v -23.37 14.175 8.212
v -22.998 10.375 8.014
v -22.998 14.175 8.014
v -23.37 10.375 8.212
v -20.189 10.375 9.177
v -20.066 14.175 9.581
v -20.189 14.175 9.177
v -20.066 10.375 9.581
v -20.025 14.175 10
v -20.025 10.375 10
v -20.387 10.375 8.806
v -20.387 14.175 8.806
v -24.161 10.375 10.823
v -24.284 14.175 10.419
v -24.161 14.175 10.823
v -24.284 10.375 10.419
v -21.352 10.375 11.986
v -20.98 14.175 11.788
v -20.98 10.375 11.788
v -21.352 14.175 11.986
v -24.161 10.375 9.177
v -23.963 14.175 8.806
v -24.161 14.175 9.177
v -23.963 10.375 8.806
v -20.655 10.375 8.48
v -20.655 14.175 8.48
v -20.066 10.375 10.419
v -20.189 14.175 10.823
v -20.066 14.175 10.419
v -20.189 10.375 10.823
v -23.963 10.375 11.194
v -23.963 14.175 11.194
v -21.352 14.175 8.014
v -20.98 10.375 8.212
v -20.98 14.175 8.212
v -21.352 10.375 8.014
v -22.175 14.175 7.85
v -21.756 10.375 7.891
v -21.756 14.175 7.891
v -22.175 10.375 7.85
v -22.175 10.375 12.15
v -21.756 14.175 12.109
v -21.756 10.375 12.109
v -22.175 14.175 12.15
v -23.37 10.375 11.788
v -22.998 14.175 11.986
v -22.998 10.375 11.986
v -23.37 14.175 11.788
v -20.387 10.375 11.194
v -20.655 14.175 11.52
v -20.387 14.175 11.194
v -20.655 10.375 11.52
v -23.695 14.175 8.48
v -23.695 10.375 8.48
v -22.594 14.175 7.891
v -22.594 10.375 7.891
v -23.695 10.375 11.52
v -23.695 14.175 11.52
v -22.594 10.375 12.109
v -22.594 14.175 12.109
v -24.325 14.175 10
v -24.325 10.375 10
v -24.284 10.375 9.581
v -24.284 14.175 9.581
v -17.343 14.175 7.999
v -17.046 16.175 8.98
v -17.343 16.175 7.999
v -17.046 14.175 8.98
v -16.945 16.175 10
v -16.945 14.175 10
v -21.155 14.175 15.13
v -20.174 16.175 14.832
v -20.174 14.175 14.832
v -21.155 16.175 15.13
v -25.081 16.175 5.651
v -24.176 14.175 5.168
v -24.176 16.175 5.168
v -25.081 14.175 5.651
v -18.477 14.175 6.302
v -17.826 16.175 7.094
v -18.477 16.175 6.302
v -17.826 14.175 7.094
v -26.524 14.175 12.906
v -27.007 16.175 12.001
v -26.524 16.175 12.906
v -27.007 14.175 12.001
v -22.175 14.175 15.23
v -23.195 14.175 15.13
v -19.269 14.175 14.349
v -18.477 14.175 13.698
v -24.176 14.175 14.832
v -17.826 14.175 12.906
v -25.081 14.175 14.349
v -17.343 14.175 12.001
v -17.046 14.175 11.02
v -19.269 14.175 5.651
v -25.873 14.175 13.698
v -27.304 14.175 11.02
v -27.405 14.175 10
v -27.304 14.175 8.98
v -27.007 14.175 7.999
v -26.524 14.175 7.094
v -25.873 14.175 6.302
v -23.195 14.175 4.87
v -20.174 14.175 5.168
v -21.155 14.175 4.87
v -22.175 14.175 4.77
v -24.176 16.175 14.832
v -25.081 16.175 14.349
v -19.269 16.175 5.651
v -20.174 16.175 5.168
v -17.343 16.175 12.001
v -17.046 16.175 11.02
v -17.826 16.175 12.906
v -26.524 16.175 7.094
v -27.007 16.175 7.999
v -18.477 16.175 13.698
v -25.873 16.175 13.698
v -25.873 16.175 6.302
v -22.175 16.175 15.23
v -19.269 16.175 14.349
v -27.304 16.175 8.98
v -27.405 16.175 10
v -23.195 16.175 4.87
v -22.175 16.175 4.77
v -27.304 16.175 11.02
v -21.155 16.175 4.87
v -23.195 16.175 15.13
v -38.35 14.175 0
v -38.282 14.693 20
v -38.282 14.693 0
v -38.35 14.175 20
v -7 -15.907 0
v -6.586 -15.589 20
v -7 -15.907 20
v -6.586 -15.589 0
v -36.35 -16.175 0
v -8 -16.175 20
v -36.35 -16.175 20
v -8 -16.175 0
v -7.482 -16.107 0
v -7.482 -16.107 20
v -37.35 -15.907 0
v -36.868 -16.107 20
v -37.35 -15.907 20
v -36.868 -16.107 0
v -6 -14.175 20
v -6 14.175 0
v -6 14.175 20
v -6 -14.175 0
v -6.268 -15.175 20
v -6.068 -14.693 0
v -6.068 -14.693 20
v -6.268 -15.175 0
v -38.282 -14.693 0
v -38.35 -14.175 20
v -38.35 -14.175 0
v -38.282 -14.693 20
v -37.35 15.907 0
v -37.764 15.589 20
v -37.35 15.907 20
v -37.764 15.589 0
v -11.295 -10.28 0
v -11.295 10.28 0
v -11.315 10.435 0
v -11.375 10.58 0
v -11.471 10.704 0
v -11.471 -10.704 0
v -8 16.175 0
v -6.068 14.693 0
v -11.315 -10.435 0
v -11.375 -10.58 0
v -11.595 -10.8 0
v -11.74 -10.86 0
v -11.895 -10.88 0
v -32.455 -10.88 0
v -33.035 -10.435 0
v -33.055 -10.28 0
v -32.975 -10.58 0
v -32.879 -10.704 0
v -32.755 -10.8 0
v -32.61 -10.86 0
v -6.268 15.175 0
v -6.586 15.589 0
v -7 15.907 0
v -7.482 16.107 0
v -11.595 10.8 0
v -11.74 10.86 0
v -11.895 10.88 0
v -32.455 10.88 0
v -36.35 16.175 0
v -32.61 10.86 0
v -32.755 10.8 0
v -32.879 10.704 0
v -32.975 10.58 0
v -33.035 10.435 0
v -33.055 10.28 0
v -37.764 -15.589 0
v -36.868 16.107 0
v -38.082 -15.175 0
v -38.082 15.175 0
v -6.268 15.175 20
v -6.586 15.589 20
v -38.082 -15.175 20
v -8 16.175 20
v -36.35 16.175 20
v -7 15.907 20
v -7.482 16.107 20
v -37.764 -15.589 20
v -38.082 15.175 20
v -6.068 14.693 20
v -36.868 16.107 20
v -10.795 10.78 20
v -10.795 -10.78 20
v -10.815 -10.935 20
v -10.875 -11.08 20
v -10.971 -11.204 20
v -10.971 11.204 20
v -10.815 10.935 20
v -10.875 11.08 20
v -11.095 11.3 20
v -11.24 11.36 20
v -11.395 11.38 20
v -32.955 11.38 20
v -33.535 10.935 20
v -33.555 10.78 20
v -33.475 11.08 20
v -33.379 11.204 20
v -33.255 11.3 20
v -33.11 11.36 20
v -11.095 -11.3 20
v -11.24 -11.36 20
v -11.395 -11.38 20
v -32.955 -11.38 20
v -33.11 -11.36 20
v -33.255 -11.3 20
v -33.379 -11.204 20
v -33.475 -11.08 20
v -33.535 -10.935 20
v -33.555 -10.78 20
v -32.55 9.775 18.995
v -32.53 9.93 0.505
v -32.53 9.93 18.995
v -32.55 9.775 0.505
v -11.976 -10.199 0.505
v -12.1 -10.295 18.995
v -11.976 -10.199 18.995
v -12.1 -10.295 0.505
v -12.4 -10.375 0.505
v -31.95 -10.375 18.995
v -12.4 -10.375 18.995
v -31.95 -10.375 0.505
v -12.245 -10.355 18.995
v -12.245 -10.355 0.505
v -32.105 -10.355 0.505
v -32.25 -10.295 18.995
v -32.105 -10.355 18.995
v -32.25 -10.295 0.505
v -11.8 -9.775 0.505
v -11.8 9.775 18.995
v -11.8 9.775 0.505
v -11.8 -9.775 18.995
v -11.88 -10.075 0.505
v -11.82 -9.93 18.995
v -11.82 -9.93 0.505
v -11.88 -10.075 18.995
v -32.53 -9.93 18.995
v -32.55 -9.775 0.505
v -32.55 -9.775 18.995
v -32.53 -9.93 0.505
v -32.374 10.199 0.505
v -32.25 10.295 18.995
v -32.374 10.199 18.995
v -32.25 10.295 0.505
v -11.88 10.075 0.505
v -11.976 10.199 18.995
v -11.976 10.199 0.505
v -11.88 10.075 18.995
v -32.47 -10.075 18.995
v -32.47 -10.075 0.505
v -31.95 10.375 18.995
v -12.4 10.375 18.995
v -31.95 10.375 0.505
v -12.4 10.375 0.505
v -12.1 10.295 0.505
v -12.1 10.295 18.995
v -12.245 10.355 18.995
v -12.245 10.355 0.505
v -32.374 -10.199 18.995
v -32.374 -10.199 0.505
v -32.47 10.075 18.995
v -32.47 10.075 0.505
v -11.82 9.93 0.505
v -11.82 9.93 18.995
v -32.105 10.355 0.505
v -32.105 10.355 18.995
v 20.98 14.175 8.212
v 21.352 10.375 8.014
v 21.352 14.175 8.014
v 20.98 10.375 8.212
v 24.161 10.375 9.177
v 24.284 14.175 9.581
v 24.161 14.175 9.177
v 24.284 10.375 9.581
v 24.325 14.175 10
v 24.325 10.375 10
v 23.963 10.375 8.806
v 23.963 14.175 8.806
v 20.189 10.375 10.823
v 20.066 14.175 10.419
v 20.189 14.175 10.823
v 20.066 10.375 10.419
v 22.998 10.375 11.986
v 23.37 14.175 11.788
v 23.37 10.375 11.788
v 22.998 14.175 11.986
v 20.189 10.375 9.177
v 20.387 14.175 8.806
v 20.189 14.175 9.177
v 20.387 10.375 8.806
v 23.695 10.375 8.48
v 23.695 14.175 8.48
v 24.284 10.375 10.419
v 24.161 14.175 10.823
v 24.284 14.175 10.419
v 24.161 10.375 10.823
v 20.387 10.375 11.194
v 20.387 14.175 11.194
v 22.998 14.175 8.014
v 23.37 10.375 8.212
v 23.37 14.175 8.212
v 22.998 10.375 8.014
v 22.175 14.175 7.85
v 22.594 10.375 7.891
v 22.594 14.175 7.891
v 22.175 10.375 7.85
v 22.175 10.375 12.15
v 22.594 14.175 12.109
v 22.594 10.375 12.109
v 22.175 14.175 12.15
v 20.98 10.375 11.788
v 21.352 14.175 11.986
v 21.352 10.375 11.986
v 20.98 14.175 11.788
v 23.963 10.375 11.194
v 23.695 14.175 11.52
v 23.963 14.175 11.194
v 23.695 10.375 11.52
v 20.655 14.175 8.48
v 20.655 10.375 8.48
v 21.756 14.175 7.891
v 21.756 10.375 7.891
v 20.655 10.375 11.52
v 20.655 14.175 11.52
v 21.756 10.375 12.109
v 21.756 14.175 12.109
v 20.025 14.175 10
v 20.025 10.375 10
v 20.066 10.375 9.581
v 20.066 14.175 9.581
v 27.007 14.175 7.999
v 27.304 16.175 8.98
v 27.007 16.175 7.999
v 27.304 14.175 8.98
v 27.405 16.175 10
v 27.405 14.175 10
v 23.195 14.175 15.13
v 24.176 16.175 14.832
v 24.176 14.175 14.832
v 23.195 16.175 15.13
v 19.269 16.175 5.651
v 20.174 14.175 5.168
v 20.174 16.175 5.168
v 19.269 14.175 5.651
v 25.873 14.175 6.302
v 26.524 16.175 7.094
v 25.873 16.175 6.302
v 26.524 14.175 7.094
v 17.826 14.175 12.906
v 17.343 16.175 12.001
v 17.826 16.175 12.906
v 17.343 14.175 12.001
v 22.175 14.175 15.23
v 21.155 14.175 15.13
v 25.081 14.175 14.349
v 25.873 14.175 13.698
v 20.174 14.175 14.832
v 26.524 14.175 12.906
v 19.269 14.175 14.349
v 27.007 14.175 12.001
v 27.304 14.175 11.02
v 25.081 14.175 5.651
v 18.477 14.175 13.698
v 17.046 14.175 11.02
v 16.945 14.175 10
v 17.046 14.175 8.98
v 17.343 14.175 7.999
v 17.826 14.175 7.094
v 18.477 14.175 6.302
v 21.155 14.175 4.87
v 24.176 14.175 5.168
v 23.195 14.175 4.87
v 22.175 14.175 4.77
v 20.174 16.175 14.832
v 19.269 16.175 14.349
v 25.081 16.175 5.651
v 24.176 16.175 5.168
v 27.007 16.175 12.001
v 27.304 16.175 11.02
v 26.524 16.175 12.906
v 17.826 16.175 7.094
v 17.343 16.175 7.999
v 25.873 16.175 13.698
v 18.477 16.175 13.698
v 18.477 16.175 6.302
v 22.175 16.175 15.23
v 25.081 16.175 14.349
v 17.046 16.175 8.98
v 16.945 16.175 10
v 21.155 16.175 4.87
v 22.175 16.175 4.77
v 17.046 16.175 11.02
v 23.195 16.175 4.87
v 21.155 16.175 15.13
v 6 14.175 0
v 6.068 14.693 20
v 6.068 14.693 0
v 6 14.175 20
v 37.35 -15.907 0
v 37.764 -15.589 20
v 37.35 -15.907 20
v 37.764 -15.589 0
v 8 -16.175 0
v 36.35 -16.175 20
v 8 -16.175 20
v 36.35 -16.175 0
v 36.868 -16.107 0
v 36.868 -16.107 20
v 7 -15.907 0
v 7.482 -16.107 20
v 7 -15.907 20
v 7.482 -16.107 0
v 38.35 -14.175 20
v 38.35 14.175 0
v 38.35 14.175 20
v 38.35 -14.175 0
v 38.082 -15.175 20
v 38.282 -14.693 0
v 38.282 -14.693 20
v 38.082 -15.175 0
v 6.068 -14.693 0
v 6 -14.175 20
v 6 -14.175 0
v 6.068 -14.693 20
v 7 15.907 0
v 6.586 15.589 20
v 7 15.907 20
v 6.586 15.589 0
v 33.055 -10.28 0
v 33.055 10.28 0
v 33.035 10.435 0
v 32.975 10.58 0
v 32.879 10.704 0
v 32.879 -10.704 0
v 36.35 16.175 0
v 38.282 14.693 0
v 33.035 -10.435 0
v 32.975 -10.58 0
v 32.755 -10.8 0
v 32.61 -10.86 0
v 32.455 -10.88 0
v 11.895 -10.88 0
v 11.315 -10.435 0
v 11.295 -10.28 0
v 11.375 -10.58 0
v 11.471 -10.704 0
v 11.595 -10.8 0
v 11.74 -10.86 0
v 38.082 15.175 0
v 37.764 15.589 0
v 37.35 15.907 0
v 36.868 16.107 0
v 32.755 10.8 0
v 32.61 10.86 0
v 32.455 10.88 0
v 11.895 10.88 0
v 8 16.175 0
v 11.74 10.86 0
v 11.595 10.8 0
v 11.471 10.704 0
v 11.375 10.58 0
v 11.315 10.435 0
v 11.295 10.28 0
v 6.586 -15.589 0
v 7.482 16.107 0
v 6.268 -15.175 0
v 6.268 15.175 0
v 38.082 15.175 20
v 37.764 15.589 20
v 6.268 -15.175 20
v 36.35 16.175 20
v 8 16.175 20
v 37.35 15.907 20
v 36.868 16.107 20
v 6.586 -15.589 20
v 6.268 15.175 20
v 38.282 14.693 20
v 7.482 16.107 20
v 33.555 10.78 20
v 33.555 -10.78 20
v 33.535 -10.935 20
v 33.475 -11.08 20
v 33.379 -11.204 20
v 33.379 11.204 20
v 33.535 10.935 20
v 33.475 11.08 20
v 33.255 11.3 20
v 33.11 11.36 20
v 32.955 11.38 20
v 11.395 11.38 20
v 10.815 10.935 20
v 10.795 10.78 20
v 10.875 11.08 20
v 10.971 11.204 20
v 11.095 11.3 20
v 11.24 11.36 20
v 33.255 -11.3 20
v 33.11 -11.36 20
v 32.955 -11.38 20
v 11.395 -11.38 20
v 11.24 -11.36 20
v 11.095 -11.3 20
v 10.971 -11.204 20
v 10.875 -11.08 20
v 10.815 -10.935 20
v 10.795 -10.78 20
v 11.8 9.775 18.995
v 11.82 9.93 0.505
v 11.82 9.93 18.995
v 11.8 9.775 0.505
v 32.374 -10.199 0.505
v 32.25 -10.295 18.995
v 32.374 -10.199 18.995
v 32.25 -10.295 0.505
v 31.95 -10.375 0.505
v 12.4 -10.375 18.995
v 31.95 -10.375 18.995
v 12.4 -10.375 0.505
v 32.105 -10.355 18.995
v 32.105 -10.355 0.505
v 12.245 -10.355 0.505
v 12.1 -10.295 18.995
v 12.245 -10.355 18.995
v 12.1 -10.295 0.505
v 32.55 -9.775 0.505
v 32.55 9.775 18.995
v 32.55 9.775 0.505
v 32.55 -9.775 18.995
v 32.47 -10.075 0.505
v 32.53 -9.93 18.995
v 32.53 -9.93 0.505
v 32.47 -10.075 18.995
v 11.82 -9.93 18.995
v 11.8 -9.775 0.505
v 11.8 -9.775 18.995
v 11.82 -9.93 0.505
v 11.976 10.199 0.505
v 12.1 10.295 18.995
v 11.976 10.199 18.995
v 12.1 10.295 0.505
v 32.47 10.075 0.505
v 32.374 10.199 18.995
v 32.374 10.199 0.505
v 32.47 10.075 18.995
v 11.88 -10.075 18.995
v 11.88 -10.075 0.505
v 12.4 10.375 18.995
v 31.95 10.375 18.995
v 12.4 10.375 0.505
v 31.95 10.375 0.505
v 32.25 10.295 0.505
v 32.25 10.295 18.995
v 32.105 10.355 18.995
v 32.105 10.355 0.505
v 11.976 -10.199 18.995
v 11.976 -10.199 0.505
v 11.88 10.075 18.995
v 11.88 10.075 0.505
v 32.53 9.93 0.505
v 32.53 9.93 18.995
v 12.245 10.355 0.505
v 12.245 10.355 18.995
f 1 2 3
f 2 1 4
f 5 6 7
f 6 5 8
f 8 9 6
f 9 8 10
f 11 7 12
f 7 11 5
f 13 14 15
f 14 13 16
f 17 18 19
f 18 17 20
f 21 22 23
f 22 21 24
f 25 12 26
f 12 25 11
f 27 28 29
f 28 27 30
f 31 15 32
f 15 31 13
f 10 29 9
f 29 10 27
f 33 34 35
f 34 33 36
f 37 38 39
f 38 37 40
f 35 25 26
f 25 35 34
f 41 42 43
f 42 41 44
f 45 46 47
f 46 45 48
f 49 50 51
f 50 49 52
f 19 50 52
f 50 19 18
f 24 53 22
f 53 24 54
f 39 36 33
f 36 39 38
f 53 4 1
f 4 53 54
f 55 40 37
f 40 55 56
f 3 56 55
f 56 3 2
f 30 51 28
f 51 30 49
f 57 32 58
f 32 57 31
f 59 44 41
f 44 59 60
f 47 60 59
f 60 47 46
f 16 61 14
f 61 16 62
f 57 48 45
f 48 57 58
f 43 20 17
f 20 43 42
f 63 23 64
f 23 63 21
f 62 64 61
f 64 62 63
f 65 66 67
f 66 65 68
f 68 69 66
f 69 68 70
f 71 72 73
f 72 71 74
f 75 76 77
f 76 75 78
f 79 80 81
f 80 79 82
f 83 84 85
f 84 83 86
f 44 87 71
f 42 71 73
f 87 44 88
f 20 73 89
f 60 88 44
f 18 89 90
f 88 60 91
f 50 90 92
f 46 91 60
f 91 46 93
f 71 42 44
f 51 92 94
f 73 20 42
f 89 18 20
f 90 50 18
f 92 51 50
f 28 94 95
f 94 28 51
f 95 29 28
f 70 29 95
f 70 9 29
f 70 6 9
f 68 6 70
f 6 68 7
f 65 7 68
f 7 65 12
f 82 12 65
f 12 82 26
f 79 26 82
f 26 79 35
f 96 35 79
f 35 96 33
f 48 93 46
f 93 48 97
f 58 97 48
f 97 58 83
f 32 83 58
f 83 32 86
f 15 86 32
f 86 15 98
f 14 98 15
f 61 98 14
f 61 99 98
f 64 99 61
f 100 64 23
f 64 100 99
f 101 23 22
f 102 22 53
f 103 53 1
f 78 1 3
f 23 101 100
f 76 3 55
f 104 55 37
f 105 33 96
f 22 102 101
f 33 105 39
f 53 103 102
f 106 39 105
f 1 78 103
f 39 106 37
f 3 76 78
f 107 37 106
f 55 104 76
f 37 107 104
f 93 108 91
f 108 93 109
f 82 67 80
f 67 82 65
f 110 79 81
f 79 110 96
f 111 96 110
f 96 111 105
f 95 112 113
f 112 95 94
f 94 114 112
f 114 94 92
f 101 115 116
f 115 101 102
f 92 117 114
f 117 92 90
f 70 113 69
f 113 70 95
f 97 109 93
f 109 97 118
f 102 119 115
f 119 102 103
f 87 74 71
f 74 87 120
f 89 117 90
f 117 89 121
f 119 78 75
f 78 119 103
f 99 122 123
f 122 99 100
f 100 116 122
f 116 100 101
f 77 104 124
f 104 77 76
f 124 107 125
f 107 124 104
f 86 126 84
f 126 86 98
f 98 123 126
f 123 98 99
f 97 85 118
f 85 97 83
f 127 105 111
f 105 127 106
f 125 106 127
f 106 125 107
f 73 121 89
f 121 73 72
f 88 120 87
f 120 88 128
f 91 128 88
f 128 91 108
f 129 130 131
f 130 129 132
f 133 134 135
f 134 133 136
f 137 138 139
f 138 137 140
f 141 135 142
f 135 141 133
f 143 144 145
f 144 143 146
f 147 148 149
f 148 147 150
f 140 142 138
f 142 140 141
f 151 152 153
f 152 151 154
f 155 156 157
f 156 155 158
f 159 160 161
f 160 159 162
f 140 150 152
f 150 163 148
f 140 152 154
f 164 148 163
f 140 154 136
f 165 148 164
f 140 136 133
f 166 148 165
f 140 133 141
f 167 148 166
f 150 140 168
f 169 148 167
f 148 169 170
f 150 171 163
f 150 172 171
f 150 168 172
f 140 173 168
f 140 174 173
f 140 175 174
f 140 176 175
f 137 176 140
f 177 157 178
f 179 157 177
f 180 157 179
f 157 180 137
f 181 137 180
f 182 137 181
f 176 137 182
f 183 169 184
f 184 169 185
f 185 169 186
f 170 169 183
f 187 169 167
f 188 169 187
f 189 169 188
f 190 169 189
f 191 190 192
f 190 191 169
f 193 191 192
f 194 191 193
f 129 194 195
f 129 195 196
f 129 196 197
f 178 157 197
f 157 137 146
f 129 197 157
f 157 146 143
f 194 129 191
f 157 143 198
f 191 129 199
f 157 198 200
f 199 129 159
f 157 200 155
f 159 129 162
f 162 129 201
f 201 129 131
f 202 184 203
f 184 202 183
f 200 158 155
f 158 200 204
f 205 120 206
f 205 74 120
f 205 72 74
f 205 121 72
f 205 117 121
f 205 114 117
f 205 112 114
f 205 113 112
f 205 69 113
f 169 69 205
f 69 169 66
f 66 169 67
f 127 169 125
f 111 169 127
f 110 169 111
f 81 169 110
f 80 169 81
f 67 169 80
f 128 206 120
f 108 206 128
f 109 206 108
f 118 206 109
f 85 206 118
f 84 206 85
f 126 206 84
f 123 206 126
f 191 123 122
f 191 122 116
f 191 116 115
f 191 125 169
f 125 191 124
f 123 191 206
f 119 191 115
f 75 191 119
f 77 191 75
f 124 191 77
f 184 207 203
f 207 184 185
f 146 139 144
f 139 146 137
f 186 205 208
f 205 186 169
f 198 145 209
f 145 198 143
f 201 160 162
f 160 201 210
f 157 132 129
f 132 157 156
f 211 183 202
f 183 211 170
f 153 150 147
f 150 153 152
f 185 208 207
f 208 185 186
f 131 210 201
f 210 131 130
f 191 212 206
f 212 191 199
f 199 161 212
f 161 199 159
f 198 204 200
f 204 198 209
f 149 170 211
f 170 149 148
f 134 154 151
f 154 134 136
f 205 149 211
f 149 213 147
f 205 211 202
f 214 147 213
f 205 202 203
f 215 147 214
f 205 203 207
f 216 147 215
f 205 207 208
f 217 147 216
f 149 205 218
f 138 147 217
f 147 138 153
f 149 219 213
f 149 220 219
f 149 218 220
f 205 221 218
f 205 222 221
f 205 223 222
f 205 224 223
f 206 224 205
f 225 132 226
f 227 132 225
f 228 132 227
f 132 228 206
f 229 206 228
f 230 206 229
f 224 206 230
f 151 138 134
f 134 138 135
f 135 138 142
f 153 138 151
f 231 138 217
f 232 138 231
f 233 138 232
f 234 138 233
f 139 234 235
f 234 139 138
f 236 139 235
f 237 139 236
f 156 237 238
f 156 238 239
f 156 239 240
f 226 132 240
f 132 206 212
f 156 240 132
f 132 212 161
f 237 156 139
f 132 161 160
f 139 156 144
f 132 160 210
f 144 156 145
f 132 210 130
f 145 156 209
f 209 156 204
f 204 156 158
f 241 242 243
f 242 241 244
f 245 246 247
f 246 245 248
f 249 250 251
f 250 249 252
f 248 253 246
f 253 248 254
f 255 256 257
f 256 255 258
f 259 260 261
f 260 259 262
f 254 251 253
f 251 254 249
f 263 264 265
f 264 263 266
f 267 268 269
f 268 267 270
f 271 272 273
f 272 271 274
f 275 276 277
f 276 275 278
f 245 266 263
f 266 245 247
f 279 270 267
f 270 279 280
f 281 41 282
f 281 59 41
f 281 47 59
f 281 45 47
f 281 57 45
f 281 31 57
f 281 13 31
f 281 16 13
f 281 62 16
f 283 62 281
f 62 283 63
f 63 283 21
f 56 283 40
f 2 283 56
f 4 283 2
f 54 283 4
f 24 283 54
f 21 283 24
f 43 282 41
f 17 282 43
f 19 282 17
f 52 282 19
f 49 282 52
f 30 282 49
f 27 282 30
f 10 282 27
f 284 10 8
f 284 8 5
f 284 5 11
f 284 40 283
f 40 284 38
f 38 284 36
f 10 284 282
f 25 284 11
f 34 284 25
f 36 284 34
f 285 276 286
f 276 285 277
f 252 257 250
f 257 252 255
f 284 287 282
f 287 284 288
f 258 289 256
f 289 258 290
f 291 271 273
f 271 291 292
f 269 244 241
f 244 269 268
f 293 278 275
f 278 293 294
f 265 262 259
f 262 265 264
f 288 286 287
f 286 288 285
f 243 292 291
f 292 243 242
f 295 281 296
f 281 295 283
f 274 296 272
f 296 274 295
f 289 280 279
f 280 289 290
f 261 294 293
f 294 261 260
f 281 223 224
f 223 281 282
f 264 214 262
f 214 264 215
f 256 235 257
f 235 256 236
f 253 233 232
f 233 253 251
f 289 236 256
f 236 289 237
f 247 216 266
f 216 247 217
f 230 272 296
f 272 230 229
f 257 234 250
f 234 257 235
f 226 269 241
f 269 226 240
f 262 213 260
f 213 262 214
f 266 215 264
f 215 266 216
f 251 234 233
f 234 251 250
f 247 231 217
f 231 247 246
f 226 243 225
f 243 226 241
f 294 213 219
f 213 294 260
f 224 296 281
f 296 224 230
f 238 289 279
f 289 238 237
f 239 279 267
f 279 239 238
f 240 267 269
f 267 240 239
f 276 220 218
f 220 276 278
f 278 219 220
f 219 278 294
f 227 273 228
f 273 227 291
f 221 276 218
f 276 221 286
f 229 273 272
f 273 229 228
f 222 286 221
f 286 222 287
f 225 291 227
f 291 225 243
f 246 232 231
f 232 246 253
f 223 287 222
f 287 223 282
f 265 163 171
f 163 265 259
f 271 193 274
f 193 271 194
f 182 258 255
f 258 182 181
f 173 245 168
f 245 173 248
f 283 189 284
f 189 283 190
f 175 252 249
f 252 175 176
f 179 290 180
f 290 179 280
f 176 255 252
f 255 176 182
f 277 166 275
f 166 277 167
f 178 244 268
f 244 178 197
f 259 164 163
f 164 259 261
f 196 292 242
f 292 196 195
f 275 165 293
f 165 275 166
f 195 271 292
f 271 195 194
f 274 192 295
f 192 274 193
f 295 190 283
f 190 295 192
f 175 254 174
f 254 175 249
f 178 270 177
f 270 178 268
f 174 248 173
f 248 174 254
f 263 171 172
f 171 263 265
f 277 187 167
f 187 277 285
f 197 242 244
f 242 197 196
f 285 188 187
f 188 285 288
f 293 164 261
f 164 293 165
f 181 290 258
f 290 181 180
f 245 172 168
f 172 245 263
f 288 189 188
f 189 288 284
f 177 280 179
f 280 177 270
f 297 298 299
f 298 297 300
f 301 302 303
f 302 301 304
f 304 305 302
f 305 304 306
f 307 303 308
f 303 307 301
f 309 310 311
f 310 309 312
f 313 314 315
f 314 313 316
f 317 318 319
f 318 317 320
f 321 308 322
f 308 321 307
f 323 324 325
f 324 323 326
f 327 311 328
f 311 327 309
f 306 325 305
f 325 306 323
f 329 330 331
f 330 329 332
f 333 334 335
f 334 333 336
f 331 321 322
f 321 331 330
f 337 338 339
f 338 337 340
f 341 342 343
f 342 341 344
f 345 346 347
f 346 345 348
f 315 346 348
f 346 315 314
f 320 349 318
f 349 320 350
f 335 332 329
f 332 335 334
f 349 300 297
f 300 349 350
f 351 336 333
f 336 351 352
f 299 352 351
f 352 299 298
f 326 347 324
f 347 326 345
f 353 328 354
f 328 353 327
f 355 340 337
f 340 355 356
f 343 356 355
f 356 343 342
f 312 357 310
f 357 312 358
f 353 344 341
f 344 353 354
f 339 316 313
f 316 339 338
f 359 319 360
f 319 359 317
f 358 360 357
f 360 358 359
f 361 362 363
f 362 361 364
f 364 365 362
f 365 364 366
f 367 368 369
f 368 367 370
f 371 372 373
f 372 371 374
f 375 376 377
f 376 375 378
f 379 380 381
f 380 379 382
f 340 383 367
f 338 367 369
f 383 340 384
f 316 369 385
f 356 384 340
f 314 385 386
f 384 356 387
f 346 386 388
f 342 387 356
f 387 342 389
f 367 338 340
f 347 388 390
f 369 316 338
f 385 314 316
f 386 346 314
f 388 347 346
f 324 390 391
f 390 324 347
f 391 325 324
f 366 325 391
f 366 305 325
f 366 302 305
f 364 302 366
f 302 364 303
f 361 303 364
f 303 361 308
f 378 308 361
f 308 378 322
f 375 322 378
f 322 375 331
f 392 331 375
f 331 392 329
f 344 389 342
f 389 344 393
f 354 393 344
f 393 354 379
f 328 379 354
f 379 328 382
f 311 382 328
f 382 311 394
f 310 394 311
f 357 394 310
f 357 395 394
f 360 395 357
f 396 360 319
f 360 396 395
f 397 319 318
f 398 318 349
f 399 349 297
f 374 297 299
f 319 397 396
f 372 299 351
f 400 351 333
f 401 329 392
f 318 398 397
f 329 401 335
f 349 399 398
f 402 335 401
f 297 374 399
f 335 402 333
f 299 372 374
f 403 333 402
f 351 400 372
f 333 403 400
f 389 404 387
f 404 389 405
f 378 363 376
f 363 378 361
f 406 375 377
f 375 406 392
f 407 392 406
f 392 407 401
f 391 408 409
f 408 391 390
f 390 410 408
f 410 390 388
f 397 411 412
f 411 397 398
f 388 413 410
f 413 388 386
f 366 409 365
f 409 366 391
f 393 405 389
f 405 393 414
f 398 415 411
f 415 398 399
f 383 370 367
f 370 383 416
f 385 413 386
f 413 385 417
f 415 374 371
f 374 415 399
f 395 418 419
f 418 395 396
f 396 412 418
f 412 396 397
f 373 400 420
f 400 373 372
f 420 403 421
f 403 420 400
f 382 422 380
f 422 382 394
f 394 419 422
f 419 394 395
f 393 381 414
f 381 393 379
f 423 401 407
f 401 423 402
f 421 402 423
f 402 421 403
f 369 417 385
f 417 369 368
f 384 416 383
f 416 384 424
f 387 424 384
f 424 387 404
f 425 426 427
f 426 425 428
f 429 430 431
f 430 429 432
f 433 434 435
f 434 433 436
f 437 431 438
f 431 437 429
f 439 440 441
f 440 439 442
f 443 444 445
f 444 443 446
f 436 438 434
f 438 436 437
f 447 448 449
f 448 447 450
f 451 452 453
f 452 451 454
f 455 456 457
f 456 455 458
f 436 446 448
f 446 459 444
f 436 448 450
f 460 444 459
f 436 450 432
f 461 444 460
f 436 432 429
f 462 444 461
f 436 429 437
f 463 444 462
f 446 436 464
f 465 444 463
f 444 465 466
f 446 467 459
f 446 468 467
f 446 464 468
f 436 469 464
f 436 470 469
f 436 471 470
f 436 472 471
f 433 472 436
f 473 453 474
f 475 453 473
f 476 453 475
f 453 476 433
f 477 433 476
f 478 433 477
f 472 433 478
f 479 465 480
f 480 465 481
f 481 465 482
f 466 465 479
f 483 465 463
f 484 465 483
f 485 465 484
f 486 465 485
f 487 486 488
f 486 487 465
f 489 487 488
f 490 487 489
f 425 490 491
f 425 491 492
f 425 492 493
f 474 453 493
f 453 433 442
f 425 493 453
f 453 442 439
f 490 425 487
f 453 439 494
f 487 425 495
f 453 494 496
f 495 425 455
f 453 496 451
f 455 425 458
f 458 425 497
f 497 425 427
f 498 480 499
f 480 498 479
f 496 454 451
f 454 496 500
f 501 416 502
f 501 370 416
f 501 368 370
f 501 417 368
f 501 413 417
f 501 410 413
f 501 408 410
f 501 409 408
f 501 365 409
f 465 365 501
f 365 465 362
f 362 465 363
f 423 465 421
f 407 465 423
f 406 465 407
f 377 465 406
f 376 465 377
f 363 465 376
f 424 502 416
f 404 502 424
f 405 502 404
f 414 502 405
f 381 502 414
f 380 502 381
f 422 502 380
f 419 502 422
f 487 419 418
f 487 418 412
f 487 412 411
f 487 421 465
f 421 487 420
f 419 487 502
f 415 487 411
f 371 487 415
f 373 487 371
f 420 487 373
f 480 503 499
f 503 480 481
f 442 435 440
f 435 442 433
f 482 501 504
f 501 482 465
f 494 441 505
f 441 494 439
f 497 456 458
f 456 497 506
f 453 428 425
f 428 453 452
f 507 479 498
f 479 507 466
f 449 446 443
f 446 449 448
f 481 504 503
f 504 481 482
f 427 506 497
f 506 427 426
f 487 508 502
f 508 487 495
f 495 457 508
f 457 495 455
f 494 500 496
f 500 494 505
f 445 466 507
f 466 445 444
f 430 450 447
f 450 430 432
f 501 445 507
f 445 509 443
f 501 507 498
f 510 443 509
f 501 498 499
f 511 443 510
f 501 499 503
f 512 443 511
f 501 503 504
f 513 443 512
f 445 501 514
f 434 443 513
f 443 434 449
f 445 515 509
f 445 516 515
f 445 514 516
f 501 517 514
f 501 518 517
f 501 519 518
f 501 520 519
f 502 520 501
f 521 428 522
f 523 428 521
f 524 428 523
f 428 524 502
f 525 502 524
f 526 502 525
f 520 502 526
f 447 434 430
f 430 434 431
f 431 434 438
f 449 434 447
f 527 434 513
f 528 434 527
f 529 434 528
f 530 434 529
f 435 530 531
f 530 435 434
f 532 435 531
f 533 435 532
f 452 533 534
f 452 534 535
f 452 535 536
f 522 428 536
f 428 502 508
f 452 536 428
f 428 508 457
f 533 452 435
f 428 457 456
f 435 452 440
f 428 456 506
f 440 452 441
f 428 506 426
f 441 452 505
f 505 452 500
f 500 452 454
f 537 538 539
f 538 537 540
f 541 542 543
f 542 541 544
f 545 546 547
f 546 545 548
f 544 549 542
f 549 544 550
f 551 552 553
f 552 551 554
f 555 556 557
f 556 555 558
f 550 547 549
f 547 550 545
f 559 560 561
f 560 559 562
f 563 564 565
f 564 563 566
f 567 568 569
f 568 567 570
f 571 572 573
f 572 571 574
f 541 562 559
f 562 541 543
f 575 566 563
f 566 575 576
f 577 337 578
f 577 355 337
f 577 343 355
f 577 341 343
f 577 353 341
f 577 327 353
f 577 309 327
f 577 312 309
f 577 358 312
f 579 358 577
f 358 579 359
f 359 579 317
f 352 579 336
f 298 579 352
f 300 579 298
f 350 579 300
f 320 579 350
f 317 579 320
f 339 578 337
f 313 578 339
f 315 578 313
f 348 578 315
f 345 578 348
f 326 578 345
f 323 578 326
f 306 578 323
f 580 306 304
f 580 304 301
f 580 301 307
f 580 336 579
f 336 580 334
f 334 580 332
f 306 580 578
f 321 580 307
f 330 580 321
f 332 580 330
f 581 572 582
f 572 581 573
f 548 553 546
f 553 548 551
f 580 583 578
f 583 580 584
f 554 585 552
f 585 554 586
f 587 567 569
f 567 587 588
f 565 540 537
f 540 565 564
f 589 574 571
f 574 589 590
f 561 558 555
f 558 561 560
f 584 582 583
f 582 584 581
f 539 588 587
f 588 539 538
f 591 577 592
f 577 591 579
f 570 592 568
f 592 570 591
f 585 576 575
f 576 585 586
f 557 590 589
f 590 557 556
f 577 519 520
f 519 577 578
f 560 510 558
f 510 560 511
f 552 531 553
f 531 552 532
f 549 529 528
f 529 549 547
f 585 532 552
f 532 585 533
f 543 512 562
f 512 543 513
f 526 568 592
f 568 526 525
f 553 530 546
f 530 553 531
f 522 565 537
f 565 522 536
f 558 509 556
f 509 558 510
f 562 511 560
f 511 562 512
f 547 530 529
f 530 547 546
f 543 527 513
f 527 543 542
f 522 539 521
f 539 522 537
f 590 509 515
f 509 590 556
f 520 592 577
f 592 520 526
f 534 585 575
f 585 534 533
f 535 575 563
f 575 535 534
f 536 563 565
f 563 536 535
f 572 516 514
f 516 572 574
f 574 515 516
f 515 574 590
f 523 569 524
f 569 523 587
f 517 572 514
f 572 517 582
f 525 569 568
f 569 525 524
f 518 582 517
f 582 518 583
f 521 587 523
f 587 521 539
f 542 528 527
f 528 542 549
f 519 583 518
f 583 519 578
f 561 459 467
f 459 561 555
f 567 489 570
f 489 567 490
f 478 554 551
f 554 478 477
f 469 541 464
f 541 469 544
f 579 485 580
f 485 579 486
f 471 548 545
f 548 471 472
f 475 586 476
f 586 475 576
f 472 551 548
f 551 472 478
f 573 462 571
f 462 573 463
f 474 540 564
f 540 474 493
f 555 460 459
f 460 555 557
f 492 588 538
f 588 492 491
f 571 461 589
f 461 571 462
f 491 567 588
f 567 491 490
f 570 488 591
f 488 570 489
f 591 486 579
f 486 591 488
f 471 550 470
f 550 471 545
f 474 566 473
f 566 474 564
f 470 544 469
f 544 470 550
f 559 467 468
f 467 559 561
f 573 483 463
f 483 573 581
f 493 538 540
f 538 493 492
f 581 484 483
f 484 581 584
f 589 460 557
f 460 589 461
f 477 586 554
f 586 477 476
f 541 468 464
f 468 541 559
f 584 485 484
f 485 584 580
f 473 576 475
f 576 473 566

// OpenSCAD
// file: turntable-bearing.scad
// Salvaged lazy-susan bearing, from captures/2026-09-12-turntable.
// OD confirmed by hand in captures/README.md. Other values are estimates.
/* [Measured] */
outer_diameter = 140;
/* [Photo estimates - verify before fabrication] */
bore_diameter = 87;
race_diameter = 114;
race_gap = 0.6;
outer_hole_pcd = 128;
inner_hole_pcd = 102;
hole_diameter = 5;
countersink_diameter = 10;
countersink_depth = 2.5;
/* [Measured thickness] */
thickness = 8.5; // Confirmed by user.
/* [Display] */
inner_rotation = 45; // Relative hole pattern angle, independently rotating ring.
section_view = false;

function turntable_thickness() = thickness;
function turntable_od()        = outer_diameter;
function turntable_bore()      = bore_diameter;

module turntable_bearing(od=140,id=87,height=8.5,race=114,gap=0.6,
                        outer_pcd=128,inner_pcd=102,hole=5,
                        sink_d=10,sink_depth=2.5,angle=45,section=false) {
    assert(id>0 && id<race-gap && race+gap<od);
    assert(height>sink_depth && sink_depth>=0);
    assert(inner_pcd-hole>id && inner_pcd+hole<race-gap);
    assert(outer_pcd-sink_d>race+gap && outer_pcd+sink_d<od);
    difference() {
        union() {
            color([0.64,0.67,0.69]) difference() {
                cylinder(h=height,d=od,$fn=128);
                translate([0,0,-0.1]) cylinder(h=height+0.2,d=race+gap,$fn=128);
                for(a=[0:90:270]) rotate([0,0,a]) translate([outer_pcd/2,0,0]) {
                    translate([0,0,-0.1]) cylinder(h=height+0.2,d=hole,$fn=32);
                    translate([0,0,height-sink_depth])
                        cylinder(h=sink_depth+0.01,d1=hole,d2=sink_d,$fn=48);
                }
            }
            color([0.53,0.56,0.58]) rotate([0,0,angle]) difference() {
                cylinder(h=height,d=race-gap,$fn=128);
                translate([0,0,-0.1]) cylinder(h=height+0.2,d=id,$fn=128);
                for(a=[0:90:270]) rotate([0,0,a]) translate([inner_pcd/2,0,-0.1])
                    cylinder(h=height+0.2,d=hole,$fn=32);
            }
        }
        if(section) translate([-od,-od,-1]) cube([2*od,od,height+2]);
    }
}

// Two separated rings depict visible geometry only. Hidden raceways,
// balls and retaining features are unknown and intentionally unmodelled.
turntable_bearing(outer_diameter,bore_diameter,thickness,race_diameter,race_gap,
                  outer_hole_pcd,inner_hole_pcd,hole_diameter,
                  countersink_diameter,countersink_depth,inner_rotation,section_view);
// file: vslot-2020.scad
// OpenBuilds V-Slot 20x20, millimetres.
// Source: ../../datasheets/openbuilds-vslot-20x20.pdf, page 1.
// Open directly for a short inspection sample; `use` for library modules.
sample_length = 60;
section_only = false;

module vslot_2020_profile(corner_radius=0.5, centre_notch=0.2) {
    // Dimensioned features from drawing.
    half_size = 10;
    mouth_half = 9.16/2;
    throat_half = 6.25/2;
    channel_half = 11/2;
    shoulder_y = half_size - 1.80;
    floor_y = shoulder_y - 4.30;
    // 90-degree V: each face has a 45-degree slope.
    throat_y = half_size - (mouth_half-throat_half);
    // Adjacent diagonal cavity walls straddle y=x. Their normal
    // separation is the specified 1.50 mm web thickness.
    diagonal_offset = 1.50/sqrt(2);
    channel_knee_y = channel_half + diagonal_offset;
    floor_half = floor_y - diagonal_offset;

    // Corner radius and tiny floor-centre notch are visually estimated:
    // the PDF depicts them but does not dimension them.
    difference() {
        offset(r=corner_radius,$fn=24)
            square([20-2*corner_radius,20-2*corner_radius],center=true);
        circle(d=4.20,$fn=64);
        for(a=[0:90:270]) rotate(a)
            polygon([
                [-mouth_half,11], [mouth_half,11],
                [mouth_half,half_size], [throat_half,throat_y],
                [throat_half,shoulder_y], [channel_half,shoulder_y],
                [channel_half,channel_knee_y], [floor_half,floor_y],
                [centre_notch,floor_y], [0,floor_y-centre_notch],
                [-centre_notch,floor_y], [-floor_half,floor_y],
                [-channel_half,channel_knee_y], [-channel_half,shoulder_y],
                [-throat_half,shoulder_y], [-throat_half,throat_y],
                [-mouth_half,half_size]
            ]);
    }
}

module vslot_2020(length=500) {
    assert(length>0,"Rail length must be positive");
    linear_extrude(height=length,convexity=10) vslot_2020_profile();
}

if(section_only) vslot_2020_profile();
else color([0.66,0.71,0.75]) vslot_2020(sample_length);
// main file
// Belt clamp collar test: the two collars that anchor the GT2 belt to the
// spine for the Z brake, and nothing else. The belt lies on the floor of one
// slot channel, teeth outward, wholly under the rail's surface. Each end is
// held by the tip of an M5 x 10 button head, the base's tee bolt, driven
// straight into the collar wall (it forms its own thread in a 4.3 mm hole)
// and in through the slot throat, pressing the belt onto the channel floor.
// The head is sunk 2 mm so the 10 mm screw reaches, 1.1 mm into the belt,
// and it cannot bottom on the aluminium floor.
//
// Two pieces, side by side:
//   ring  - open sleeve, the base end. On the real base this is the socket
//           wall itself; here it is 20 mm of it with the clamp station.
//   cap   - closed-top sleeve, the top end. Belt tension pulls it down onto
//           the rail's end face, so it needs no other fixing for the test.
// Same square pocket as z-base.scad (boss_2d, pocket_2d), so the fit is the
// settled 0.375 mm a side. Print both flat: the cap on its closed end, the
// ring either way up (0.5 mm chamfer on the bed end clears elephant's foot).
//
// Test: ring and cap on the two ends of a rail offcut, belt down the +Y
// channel between them, clamp screws driven until they stop on the belt.
// Pull. The question is whether a screw tip on rubber holds 10 N without
// creeping, or whether the belt end wants a pin through it.
use <z-base.scad>
use <vslot-2020.scad>

rail        = 20;
socket_fit  = 0.375;   // per side, from the gauge; z-base.scad has the same
collar_h    = 20;      // open ring height
cap_t       = 3;       // closed top on the cap
lead_in     = 1.0;     // pocket mouth chamfer at the top
foot_chamfer= 0.5;     // bed-end chamfer on the pocket
station_z   = 10;      // clamp screw, up from the open end
gap         = 12;      // between the two pieces on the bed
with_cap    = false;   // second piece: the closed cap, or another ring (quicker)

belt_w      = 6;       // GT2 6 mm
belt_t      = 1.38;    // backing plus tooth, nominal

// The base's tee bolt: M5 x 10 button head, Ø9.26 head.
screw_len   = 10;
head_d      = 9.26 + 1.2;   // counterbore, 0.6 a side for the print
clamp_form  = 4.3;     // thread-forming hole for M5 in PETG (minor Ø4.02)
clamp_sink  = 2;       // head into the wall, so the 10 mm screw reaches the belt

show_context = false;  // rail stub, belt and screw; preview only
$fn = 48;

// Profile numbers from vslot-2020.scad.
slot_floor   = 10 - 1.80 - 4.30;   // 3.9 from centre
slot_throat  = 6.25;
socket_in    = rail + 2*socket_fit;
wall         = 5.8;
outer_half   = socket_in/2 + wall;
belt_top     = slot_floor + belt_t;

clamp_tip    = outer_half - clamp_sink - screw_len;   // from the rail centre
clamp_bite   = belt_top - clamp_tip;

assert(clamp_form < slot_throat, "clamp hole wider than the slot throat");
assert(clamp_tip > slot_floor, "clamp screw can bottom on the channel floor");
assert(clamp_bite >= 0.8, "clamp screw does not reach into the belt");
assert(wall - clamp_sink >= 3, "too little wall left to form the clamp thread");
assert(station_z + head_d/2 <= collar_h, "counterbore runs off the collar");
echo(str("clamp tip at ", clamp_tip, " from centre, ", clamp_bite, " mm into the belt"));

// The clamp station through the +Y wall at height z: thread-forming bore from
// inside the pocket out, counterbore from `sink` into the wall to outside.
module station(z, bore, sink) {
    translate([0,0,z]) rotate([-90,0,0]) {
        translate([0,0,socket_in/2 - 0.5]) cylinder(h=wall+2, d=bore, $fn=32);
        translate([0,0,outer_half - sink]) cylinder(h=sink+2, d=head_d, $fn=32);
    }
}
// Chamfer on the pocket mouth at z (the top at z=h, or the bed at z=0).
module mouth_chamfer(z, c, up=true) {
    s = up ? 1 : -1;
    translate([0,0,z]) hull() {
        translate([0,0,-s*c]) linear_extrude(0.01, center=true) pocket_2d();
        translate([0,0, s*0.5]) linear_extrude(0.01, center=true) pocket_2d(c+0.5);
    }
}

module collar(h, closed=false) {
    z = closed ? cap_t + station_z : station_z;
    difference() {
        linear_extrude(h) boss_2d();
        if(closed) translate([0,0,cap_t]) linear_extrude(h) pocket_2d();
        else translate([0,0,-1]) linear_extrude(h+2) pocket_2d();
        mouth_chamfer(h, lead_in);
        if(!closed) mouth_chamfer(0, foot_chamfer, up=false);
        station(z, clamp_form, clamp_sink);
    }
}

module ring() { collar(collar_h); }
module cap()  { collar(collar_h + cap_t, closed=true); }

translate([-(outer_half + gap/2), 0, 0]) ring();
translate([ (outer_half + gap/2), 0, 0]) if(with_cap) cap(); else ring();

if(show_context) %union() {
    at = [-(outer_half + gap/2), 0, 0];
    translate(at) {
        translate([0,0,-30]) color([0.66,0.71,0.75]) vslot_2020(70);
        // Belt on the +Y channel floor, and the clamp screw down onto it.
        translate([-belt_w/2, slot_floor, -30]) color([0.15,0.15,0.15]) cube([belt_w, belt_t, 70]);
        translate([0, clamp_tip, station_z]) rotate([-90,0,0])
            color([0.65,0.69,0.72]) cylinder(h=screw_len, d=5, $fn=24);
    }
}
